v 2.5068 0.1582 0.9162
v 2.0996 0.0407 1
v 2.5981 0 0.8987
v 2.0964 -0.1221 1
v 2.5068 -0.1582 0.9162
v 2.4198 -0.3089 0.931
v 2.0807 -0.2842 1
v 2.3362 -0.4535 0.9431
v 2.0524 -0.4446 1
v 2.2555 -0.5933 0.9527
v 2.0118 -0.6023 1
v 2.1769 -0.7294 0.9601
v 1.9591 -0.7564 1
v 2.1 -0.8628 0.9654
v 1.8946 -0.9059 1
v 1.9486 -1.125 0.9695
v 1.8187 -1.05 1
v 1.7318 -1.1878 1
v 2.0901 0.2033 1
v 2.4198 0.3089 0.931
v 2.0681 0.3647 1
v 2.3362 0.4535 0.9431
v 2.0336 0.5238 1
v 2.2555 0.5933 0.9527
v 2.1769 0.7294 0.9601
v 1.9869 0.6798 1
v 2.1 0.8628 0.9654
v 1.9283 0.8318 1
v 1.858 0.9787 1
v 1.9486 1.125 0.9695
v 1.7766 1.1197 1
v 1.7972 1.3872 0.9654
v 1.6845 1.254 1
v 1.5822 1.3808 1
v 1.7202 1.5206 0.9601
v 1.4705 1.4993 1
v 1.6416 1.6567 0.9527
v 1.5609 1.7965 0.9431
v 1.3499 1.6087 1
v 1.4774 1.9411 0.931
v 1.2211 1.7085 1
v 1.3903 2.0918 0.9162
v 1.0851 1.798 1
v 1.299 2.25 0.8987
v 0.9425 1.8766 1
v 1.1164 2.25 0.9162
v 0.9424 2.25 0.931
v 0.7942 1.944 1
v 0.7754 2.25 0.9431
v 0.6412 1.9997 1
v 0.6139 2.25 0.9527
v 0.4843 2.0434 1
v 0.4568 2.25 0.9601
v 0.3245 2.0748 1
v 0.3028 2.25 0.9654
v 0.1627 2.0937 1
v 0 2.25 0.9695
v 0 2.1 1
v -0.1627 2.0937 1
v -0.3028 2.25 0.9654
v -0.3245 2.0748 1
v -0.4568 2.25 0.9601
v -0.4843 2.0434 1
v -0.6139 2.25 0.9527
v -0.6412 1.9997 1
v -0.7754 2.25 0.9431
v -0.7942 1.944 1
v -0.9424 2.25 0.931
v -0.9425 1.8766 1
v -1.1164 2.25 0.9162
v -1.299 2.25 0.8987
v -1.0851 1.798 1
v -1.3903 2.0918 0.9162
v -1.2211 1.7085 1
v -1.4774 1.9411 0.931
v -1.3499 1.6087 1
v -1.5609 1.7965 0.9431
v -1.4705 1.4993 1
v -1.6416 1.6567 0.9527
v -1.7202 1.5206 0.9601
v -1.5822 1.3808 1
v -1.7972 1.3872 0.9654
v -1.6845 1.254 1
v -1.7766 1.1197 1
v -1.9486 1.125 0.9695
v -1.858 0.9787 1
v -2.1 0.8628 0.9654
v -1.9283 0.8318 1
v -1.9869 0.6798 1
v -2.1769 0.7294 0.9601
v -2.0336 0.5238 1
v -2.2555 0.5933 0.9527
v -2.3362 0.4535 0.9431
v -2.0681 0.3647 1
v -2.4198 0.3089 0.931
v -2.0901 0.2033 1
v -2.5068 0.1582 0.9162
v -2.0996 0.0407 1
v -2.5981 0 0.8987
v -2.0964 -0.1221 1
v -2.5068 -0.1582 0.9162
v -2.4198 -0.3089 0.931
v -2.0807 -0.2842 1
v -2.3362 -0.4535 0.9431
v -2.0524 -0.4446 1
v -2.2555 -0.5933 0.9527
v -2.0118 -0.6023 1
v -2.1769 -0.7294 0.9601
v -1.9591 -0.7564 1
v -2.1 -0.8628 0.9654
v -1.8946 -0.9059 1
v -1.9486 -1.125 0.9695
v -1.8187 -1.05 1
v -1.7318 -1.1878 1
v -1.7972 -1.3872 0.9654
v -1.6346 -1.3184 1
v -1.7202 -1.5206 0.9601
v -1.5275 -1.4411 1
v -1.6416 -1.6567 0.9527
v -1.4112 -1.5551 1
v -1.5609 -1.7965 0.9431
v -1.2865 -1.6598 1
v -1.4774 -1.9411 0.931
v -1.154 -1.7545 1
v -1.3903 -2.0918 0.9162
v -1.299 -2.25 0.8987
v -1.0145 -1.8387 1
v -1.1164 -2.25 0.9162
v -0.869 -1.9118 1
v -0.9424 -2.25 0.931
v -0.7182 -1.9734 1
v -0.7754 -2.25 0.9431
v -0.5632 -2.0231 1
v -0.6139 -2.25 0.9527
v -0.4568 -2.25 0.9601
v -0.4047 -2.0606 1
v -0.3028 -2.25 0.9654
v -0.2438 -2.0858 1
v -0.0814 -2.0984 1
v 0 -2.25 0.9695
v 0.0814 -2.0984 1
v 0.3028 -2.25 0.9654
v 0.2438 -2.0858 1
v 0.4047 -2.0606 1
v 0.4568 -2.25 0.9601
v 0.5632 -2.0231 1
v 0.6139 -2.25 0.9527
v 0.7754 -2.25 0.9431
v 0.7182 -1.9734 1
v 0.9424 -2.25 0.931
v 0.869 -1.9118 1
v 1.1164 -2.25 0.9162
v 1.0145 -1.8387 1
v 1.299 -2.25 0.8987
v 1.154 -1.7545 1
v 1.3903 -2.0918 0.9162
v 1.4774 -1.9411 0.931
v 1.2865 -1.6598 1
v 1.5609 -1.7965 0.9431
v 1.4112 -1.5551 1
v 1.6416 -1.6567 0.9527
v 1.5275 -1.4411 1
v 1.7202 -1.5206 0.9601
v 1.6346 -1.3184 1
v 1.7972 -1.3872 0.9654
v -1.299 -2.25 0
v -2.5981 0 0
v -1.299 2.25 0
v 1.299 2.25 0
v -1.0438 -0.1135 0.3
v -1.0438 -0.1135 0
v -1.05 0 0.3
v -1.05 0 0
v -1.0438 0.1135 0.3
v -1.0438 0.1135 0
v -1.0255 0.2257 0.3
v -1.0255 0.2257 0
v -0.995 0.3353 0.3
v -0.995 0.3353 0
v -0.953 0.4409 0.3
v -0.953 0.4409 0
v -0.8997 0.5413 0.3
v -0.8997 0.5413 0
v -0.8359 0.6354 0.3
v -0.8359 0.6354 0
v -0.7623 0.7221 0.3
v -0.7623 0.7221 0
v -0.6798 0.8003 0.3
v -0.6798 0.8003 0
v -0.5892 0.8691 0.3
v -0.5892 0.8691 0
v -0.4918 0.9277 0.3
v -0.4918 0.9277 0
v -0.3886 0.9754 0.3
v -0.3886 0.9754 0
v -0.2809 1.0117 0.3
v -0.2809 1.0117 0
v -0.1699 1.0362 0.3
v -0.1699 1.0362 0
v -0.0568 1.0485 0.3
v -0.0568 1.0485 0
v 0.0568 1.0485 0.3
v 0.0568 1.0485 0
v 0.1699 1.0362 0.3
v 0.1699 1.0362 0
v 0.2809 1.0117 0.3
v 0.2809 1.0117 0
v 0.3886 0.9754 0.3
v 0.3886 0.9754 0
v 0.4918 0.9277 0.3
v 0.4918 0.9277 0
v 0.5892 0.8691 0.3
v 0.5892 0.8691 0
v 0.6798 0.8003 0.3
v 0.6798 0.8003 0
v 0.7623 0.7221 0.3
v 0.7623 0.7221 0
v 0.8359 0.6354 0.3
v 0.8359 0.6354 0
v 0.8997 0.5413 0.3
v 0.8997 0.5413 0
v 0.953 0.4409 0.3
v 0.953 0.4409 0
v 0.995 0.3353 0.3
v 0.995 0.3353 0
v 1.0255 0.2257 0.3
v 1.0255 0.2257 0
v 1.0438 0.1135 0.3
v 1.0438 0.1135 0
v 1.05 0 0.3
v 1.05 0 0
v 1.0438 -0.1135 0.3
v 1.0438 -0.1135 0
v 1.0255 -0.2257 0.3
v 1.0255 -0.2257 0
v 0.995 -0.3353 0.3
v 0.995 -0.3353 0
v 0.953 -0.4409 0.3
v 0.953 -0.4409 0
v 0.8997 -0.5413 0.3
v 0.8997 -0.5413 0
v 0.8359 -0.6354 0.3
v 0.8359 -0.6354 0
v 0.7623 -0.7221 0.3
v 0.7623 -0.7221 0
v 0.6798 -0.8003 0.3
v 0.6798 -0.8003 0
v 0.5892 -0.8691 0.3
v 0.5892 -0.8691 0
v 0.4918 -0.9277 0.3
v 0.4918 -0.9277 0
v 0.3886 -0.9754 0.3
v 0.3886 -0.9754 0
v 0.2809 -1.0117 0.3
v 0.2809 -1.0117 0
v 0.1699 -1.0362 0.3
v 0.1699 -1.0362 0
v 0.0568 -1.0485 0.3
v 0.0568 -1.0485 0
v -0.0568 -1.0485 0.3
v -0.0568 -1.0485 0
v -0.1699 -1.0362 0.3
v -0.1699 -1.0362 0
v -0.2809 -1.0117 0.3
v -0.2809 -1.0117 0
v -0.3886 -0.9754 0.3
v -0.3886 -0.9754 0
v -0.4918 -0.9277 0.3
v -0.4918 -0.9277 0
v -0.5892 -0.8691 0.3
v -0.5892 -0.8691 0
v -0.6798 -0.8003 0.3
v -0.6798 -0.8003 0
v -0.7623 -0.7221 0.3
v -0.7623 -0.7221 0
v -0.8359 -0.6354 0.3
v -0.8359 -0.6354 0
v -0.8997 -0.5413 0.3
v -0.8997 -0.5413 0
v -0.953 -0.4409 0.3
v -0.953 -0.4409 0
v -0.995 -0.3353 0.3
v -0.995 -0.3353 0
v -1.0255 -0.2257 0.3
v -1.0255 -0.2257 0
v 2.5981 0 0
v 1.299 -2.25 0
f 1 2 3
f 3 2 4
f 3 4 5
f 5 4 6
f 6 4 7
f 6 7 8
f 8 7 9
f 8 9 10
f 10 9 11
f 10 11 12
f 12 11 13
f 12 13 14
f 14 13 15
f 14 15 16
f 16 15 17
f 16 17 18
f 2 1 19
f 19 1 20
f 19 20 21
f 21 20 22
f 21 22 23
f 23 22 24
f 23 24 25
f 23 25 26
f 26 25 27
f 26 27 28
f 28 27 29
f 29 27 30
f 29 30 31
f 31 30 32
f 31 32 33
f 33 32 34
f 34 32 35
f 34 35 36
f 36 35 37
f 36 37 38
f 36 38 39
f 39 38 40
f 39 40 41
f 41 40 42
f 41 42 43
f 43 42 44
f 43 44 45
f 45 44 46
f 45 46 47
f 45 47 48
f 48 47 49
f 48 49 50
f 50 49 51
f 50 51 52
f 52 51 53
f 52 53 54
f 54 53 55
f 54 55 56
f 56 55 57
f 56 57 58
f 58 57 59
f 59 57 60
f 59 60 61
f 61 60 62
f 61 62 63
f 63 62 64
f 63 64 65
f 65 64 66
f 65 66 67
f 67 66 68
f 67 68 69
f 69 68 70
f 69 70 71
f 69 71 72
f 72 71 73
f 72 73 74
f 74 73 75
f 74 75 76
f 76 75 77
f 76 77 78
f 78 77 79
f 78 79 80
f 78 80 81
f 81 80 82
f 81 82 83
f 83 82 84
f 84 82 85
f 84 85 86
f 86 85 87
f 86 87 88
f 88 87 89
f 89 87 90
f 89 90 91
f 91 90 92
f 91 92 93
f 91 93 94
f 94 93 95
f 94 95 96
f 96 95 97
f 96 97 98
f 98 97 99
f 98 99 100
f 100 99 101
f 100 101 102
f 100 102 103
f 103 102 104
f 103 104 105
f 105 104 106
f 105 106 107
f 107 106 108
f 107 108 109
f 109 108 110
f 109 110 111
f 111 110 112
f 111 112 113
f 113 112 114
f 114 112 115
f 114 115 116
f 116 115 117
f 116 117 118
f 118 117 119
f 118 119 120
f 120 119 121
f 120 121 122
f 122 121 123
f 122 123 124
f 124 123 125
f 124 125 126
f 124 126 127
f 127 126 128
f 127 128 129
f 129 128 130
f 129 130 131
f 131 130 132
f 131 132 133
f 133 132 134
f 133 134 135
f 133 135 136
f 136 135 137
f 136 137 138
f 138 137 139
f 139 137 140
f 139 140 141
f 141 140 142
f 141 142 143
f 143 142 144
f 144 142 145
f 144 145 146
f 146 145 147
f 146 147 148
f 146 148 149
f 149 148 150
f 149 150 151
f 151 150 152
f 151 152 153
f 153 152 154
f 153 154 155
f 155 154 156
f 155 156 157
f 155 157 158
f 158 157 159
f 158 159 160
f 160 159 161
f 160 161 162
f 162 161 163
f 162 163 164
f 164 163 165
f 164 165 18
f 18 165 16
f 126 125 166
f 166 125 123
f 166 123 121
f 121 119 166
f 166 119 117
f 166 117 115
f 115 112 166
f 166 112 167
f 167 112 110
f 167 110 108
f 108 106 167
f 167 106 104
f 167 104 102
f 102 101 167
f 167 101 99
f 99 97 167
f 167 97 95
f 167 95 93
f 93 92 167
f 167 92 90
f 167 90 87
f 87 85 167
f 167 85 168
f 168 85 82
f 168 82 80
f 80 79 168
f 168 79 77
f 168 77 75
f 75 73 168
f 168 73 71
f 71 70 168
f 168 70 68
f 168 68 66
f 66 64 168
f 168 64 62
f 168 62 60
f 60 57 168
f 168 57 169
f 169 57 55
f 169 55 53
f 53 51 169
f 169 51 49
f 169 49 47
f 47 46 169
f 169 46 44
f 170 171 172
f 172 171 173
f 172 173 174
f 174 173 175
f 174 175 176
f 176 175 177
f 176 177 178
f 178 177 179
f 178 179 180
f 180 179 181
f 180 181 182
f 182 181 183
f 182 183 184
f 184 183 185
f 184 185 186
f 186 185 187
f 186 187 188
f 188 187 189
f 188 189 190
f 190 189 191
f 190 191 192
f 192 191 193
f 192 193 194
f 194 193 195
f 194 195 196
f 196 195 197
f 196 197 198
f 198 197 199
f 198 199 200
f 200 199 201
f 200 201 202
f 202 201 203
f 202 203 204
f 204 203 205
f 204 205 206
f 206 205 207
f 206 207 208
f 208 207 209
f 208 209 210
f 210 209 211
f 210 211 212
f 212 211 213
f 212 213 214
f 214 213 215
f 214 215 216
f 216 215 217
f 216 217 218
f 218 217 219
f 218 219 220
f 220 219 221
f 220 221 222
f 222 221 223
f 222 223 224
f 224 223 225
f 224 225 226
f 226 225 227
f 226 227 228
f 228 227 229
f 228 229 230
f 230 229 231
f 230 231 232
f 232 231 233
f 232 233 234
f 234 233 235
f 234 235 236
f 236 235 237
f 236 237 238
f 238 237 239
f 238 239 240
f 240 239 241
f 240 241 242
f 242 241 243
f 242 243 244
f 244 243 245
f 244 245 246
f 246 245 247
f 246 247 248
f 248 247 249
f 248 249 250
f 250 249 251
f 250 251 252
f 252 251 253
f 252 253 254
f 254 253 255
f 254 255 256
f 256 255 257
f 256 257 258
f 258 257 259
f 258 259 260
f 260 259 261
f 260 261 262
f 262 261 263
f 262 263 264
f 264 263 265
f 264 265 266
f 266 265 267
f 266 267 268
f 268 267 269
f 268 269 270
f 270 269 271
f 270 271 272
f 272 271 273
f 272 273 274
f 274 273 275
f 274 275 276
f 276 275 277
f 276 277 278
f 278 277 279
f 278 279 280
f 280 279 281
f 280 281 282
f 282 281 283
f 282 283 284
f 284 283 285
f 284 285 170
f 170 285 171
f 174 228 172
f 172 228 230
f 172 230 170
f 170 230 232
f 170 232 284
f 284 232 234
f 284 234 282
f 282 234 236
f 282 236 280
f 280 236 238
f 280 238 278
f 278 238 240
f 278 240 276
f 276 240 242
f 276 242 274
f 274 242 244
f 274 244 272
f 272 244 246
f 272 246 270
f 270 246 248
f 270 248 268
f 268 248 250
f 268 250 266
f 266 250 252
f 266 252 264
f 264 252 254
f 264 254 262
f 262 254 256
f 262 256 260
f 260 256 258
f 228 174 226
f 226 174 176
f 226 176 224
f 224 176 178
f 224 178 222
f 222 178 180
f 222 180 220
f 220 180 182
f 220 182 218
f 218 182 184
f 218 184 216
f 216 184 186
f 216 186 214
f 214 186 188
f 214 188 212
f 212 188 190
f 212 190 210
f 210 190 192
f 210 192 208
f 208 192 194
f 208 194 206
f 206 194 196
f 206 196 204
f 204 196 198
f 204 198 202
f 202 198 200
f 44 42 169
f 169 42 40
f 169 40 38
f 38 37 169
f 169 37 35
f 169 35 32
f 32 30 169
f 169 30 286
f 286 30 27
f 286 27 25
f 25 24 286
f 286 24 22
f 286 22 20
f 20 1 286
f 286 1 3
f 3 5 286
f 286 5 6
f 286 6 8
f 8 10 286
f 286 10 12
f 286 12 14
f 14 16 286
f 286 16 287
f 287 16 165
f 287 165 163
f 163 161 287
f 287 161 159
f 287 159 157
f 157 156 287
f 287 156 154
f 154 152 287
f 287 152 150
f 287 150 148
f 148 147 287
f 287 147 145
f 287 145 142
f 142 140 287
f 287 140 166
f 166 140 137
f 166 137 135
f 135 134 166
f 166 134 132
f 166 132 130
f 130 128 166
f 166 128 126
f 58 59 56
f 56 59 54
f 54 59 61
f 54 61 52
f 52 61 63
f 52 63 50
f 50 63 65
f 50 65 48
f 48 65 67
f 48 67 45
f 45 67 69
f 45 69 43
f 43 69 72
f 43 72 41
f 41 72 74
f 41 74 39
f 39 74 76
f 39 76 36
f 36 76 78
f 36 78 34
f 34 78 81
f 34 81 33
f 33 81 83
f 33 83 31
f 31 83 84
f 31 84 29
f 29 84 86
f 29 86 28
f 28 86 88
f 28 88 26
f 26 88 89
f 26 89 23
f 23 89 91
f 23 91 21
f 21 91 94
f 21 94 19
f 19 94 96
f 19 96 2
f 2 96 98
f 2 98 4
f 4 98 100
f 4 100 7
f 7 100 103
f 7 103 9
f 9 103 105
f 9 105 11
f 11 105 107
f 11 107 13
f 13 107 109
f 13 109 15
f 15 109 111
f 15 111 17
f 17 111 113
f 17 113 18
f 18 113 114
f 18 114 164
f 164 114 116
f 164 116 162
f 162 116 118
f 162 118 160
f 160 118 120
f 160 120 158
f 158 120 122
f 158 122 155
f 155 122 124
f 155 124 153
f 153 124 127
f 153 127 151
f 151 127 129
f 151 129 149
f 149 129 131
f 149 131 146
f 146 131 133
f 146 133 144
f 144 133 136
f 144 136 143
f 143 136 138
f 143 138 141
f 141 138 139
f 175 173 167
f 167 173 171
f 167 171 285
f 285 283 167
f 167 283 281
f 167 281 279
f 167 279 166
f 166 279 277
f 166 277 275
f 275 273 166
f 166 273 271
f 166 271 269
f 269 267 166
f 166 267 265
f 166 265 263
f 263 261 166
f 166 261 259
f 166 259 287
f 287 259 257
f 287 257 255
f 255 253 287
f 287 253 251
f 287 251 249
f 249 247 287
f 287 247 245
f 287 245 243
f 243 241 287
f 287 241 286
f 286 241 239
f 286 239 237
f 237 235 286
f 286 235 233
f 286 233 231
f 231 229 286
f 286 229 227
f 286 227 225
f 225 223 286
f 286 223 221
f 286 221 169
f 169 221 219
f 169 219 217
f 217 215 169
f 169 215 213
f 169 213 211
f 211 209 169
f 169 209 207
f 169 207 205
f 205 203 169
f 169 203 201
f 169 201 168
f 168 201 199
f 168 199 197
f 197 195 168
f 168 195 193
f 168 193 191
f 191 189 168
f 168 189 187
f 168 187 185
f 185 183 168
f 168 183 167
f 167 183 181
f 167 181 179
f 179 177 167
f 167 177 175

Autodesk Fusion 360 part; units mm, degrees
sketch "Sketch1" plane through (0, 0, 0) normal (0, 0, 1) x (1, 0, 0) in component "Component"
  circle A0 centre (0, 0) radius 1.05
  line L0 (-1.299, 2.25) -> (-2.5981, 0)
  line L1 (-2.5981, 0) -> (-1.299, -2.25)
  line L2 (-1.299, -2.25) -> (1.299, -2.25)
  line L3 (1.299, -2.25) -> (2.5981, 0)
  line L4 (2.5981, 0) -> (1.299, 2.25)
  line L5 (1.299, 2.25) -> (-1.299, 2.25)
  dimension "d1" = 2.1
  dimension "d3" = 2.25
extrude "Extrude1" add sketch "Sketch1" along normal blind 1 contours A0 | L0 L1 L2 L3 L4 L5 in component "Component"
extrude "Extrude2" cut sketch "Sketch1" along normal blind 0.3 contours A0 in component "Component"
sketch "Sketch2" plane through (0, 0, 0) normal (1, 0, 0) x (0, 1, 0) in component "Component"
  line L0 (2.1, 1) -> (3.0799, 0.8006)
  line L1 (2.1, 1) -> (3.1, 1) construction
  line L2 (3.0799, 0.8006) -> (3.1, 1)
  line L3 (2.1, 1) -> (3.1, 1)
  dimension "d8" = 1
  dimension "d9" = 11.5
revolve "Revolve1" cut sketch "Sketch2" angle 360 about axis through (0, 0, 1.75) along (0, 0, 1) in component "Component"
component "Component" placed x (1, 0, 0) y (0, 1, 0) z (0, 0, 1) at (0, 0, 0)
